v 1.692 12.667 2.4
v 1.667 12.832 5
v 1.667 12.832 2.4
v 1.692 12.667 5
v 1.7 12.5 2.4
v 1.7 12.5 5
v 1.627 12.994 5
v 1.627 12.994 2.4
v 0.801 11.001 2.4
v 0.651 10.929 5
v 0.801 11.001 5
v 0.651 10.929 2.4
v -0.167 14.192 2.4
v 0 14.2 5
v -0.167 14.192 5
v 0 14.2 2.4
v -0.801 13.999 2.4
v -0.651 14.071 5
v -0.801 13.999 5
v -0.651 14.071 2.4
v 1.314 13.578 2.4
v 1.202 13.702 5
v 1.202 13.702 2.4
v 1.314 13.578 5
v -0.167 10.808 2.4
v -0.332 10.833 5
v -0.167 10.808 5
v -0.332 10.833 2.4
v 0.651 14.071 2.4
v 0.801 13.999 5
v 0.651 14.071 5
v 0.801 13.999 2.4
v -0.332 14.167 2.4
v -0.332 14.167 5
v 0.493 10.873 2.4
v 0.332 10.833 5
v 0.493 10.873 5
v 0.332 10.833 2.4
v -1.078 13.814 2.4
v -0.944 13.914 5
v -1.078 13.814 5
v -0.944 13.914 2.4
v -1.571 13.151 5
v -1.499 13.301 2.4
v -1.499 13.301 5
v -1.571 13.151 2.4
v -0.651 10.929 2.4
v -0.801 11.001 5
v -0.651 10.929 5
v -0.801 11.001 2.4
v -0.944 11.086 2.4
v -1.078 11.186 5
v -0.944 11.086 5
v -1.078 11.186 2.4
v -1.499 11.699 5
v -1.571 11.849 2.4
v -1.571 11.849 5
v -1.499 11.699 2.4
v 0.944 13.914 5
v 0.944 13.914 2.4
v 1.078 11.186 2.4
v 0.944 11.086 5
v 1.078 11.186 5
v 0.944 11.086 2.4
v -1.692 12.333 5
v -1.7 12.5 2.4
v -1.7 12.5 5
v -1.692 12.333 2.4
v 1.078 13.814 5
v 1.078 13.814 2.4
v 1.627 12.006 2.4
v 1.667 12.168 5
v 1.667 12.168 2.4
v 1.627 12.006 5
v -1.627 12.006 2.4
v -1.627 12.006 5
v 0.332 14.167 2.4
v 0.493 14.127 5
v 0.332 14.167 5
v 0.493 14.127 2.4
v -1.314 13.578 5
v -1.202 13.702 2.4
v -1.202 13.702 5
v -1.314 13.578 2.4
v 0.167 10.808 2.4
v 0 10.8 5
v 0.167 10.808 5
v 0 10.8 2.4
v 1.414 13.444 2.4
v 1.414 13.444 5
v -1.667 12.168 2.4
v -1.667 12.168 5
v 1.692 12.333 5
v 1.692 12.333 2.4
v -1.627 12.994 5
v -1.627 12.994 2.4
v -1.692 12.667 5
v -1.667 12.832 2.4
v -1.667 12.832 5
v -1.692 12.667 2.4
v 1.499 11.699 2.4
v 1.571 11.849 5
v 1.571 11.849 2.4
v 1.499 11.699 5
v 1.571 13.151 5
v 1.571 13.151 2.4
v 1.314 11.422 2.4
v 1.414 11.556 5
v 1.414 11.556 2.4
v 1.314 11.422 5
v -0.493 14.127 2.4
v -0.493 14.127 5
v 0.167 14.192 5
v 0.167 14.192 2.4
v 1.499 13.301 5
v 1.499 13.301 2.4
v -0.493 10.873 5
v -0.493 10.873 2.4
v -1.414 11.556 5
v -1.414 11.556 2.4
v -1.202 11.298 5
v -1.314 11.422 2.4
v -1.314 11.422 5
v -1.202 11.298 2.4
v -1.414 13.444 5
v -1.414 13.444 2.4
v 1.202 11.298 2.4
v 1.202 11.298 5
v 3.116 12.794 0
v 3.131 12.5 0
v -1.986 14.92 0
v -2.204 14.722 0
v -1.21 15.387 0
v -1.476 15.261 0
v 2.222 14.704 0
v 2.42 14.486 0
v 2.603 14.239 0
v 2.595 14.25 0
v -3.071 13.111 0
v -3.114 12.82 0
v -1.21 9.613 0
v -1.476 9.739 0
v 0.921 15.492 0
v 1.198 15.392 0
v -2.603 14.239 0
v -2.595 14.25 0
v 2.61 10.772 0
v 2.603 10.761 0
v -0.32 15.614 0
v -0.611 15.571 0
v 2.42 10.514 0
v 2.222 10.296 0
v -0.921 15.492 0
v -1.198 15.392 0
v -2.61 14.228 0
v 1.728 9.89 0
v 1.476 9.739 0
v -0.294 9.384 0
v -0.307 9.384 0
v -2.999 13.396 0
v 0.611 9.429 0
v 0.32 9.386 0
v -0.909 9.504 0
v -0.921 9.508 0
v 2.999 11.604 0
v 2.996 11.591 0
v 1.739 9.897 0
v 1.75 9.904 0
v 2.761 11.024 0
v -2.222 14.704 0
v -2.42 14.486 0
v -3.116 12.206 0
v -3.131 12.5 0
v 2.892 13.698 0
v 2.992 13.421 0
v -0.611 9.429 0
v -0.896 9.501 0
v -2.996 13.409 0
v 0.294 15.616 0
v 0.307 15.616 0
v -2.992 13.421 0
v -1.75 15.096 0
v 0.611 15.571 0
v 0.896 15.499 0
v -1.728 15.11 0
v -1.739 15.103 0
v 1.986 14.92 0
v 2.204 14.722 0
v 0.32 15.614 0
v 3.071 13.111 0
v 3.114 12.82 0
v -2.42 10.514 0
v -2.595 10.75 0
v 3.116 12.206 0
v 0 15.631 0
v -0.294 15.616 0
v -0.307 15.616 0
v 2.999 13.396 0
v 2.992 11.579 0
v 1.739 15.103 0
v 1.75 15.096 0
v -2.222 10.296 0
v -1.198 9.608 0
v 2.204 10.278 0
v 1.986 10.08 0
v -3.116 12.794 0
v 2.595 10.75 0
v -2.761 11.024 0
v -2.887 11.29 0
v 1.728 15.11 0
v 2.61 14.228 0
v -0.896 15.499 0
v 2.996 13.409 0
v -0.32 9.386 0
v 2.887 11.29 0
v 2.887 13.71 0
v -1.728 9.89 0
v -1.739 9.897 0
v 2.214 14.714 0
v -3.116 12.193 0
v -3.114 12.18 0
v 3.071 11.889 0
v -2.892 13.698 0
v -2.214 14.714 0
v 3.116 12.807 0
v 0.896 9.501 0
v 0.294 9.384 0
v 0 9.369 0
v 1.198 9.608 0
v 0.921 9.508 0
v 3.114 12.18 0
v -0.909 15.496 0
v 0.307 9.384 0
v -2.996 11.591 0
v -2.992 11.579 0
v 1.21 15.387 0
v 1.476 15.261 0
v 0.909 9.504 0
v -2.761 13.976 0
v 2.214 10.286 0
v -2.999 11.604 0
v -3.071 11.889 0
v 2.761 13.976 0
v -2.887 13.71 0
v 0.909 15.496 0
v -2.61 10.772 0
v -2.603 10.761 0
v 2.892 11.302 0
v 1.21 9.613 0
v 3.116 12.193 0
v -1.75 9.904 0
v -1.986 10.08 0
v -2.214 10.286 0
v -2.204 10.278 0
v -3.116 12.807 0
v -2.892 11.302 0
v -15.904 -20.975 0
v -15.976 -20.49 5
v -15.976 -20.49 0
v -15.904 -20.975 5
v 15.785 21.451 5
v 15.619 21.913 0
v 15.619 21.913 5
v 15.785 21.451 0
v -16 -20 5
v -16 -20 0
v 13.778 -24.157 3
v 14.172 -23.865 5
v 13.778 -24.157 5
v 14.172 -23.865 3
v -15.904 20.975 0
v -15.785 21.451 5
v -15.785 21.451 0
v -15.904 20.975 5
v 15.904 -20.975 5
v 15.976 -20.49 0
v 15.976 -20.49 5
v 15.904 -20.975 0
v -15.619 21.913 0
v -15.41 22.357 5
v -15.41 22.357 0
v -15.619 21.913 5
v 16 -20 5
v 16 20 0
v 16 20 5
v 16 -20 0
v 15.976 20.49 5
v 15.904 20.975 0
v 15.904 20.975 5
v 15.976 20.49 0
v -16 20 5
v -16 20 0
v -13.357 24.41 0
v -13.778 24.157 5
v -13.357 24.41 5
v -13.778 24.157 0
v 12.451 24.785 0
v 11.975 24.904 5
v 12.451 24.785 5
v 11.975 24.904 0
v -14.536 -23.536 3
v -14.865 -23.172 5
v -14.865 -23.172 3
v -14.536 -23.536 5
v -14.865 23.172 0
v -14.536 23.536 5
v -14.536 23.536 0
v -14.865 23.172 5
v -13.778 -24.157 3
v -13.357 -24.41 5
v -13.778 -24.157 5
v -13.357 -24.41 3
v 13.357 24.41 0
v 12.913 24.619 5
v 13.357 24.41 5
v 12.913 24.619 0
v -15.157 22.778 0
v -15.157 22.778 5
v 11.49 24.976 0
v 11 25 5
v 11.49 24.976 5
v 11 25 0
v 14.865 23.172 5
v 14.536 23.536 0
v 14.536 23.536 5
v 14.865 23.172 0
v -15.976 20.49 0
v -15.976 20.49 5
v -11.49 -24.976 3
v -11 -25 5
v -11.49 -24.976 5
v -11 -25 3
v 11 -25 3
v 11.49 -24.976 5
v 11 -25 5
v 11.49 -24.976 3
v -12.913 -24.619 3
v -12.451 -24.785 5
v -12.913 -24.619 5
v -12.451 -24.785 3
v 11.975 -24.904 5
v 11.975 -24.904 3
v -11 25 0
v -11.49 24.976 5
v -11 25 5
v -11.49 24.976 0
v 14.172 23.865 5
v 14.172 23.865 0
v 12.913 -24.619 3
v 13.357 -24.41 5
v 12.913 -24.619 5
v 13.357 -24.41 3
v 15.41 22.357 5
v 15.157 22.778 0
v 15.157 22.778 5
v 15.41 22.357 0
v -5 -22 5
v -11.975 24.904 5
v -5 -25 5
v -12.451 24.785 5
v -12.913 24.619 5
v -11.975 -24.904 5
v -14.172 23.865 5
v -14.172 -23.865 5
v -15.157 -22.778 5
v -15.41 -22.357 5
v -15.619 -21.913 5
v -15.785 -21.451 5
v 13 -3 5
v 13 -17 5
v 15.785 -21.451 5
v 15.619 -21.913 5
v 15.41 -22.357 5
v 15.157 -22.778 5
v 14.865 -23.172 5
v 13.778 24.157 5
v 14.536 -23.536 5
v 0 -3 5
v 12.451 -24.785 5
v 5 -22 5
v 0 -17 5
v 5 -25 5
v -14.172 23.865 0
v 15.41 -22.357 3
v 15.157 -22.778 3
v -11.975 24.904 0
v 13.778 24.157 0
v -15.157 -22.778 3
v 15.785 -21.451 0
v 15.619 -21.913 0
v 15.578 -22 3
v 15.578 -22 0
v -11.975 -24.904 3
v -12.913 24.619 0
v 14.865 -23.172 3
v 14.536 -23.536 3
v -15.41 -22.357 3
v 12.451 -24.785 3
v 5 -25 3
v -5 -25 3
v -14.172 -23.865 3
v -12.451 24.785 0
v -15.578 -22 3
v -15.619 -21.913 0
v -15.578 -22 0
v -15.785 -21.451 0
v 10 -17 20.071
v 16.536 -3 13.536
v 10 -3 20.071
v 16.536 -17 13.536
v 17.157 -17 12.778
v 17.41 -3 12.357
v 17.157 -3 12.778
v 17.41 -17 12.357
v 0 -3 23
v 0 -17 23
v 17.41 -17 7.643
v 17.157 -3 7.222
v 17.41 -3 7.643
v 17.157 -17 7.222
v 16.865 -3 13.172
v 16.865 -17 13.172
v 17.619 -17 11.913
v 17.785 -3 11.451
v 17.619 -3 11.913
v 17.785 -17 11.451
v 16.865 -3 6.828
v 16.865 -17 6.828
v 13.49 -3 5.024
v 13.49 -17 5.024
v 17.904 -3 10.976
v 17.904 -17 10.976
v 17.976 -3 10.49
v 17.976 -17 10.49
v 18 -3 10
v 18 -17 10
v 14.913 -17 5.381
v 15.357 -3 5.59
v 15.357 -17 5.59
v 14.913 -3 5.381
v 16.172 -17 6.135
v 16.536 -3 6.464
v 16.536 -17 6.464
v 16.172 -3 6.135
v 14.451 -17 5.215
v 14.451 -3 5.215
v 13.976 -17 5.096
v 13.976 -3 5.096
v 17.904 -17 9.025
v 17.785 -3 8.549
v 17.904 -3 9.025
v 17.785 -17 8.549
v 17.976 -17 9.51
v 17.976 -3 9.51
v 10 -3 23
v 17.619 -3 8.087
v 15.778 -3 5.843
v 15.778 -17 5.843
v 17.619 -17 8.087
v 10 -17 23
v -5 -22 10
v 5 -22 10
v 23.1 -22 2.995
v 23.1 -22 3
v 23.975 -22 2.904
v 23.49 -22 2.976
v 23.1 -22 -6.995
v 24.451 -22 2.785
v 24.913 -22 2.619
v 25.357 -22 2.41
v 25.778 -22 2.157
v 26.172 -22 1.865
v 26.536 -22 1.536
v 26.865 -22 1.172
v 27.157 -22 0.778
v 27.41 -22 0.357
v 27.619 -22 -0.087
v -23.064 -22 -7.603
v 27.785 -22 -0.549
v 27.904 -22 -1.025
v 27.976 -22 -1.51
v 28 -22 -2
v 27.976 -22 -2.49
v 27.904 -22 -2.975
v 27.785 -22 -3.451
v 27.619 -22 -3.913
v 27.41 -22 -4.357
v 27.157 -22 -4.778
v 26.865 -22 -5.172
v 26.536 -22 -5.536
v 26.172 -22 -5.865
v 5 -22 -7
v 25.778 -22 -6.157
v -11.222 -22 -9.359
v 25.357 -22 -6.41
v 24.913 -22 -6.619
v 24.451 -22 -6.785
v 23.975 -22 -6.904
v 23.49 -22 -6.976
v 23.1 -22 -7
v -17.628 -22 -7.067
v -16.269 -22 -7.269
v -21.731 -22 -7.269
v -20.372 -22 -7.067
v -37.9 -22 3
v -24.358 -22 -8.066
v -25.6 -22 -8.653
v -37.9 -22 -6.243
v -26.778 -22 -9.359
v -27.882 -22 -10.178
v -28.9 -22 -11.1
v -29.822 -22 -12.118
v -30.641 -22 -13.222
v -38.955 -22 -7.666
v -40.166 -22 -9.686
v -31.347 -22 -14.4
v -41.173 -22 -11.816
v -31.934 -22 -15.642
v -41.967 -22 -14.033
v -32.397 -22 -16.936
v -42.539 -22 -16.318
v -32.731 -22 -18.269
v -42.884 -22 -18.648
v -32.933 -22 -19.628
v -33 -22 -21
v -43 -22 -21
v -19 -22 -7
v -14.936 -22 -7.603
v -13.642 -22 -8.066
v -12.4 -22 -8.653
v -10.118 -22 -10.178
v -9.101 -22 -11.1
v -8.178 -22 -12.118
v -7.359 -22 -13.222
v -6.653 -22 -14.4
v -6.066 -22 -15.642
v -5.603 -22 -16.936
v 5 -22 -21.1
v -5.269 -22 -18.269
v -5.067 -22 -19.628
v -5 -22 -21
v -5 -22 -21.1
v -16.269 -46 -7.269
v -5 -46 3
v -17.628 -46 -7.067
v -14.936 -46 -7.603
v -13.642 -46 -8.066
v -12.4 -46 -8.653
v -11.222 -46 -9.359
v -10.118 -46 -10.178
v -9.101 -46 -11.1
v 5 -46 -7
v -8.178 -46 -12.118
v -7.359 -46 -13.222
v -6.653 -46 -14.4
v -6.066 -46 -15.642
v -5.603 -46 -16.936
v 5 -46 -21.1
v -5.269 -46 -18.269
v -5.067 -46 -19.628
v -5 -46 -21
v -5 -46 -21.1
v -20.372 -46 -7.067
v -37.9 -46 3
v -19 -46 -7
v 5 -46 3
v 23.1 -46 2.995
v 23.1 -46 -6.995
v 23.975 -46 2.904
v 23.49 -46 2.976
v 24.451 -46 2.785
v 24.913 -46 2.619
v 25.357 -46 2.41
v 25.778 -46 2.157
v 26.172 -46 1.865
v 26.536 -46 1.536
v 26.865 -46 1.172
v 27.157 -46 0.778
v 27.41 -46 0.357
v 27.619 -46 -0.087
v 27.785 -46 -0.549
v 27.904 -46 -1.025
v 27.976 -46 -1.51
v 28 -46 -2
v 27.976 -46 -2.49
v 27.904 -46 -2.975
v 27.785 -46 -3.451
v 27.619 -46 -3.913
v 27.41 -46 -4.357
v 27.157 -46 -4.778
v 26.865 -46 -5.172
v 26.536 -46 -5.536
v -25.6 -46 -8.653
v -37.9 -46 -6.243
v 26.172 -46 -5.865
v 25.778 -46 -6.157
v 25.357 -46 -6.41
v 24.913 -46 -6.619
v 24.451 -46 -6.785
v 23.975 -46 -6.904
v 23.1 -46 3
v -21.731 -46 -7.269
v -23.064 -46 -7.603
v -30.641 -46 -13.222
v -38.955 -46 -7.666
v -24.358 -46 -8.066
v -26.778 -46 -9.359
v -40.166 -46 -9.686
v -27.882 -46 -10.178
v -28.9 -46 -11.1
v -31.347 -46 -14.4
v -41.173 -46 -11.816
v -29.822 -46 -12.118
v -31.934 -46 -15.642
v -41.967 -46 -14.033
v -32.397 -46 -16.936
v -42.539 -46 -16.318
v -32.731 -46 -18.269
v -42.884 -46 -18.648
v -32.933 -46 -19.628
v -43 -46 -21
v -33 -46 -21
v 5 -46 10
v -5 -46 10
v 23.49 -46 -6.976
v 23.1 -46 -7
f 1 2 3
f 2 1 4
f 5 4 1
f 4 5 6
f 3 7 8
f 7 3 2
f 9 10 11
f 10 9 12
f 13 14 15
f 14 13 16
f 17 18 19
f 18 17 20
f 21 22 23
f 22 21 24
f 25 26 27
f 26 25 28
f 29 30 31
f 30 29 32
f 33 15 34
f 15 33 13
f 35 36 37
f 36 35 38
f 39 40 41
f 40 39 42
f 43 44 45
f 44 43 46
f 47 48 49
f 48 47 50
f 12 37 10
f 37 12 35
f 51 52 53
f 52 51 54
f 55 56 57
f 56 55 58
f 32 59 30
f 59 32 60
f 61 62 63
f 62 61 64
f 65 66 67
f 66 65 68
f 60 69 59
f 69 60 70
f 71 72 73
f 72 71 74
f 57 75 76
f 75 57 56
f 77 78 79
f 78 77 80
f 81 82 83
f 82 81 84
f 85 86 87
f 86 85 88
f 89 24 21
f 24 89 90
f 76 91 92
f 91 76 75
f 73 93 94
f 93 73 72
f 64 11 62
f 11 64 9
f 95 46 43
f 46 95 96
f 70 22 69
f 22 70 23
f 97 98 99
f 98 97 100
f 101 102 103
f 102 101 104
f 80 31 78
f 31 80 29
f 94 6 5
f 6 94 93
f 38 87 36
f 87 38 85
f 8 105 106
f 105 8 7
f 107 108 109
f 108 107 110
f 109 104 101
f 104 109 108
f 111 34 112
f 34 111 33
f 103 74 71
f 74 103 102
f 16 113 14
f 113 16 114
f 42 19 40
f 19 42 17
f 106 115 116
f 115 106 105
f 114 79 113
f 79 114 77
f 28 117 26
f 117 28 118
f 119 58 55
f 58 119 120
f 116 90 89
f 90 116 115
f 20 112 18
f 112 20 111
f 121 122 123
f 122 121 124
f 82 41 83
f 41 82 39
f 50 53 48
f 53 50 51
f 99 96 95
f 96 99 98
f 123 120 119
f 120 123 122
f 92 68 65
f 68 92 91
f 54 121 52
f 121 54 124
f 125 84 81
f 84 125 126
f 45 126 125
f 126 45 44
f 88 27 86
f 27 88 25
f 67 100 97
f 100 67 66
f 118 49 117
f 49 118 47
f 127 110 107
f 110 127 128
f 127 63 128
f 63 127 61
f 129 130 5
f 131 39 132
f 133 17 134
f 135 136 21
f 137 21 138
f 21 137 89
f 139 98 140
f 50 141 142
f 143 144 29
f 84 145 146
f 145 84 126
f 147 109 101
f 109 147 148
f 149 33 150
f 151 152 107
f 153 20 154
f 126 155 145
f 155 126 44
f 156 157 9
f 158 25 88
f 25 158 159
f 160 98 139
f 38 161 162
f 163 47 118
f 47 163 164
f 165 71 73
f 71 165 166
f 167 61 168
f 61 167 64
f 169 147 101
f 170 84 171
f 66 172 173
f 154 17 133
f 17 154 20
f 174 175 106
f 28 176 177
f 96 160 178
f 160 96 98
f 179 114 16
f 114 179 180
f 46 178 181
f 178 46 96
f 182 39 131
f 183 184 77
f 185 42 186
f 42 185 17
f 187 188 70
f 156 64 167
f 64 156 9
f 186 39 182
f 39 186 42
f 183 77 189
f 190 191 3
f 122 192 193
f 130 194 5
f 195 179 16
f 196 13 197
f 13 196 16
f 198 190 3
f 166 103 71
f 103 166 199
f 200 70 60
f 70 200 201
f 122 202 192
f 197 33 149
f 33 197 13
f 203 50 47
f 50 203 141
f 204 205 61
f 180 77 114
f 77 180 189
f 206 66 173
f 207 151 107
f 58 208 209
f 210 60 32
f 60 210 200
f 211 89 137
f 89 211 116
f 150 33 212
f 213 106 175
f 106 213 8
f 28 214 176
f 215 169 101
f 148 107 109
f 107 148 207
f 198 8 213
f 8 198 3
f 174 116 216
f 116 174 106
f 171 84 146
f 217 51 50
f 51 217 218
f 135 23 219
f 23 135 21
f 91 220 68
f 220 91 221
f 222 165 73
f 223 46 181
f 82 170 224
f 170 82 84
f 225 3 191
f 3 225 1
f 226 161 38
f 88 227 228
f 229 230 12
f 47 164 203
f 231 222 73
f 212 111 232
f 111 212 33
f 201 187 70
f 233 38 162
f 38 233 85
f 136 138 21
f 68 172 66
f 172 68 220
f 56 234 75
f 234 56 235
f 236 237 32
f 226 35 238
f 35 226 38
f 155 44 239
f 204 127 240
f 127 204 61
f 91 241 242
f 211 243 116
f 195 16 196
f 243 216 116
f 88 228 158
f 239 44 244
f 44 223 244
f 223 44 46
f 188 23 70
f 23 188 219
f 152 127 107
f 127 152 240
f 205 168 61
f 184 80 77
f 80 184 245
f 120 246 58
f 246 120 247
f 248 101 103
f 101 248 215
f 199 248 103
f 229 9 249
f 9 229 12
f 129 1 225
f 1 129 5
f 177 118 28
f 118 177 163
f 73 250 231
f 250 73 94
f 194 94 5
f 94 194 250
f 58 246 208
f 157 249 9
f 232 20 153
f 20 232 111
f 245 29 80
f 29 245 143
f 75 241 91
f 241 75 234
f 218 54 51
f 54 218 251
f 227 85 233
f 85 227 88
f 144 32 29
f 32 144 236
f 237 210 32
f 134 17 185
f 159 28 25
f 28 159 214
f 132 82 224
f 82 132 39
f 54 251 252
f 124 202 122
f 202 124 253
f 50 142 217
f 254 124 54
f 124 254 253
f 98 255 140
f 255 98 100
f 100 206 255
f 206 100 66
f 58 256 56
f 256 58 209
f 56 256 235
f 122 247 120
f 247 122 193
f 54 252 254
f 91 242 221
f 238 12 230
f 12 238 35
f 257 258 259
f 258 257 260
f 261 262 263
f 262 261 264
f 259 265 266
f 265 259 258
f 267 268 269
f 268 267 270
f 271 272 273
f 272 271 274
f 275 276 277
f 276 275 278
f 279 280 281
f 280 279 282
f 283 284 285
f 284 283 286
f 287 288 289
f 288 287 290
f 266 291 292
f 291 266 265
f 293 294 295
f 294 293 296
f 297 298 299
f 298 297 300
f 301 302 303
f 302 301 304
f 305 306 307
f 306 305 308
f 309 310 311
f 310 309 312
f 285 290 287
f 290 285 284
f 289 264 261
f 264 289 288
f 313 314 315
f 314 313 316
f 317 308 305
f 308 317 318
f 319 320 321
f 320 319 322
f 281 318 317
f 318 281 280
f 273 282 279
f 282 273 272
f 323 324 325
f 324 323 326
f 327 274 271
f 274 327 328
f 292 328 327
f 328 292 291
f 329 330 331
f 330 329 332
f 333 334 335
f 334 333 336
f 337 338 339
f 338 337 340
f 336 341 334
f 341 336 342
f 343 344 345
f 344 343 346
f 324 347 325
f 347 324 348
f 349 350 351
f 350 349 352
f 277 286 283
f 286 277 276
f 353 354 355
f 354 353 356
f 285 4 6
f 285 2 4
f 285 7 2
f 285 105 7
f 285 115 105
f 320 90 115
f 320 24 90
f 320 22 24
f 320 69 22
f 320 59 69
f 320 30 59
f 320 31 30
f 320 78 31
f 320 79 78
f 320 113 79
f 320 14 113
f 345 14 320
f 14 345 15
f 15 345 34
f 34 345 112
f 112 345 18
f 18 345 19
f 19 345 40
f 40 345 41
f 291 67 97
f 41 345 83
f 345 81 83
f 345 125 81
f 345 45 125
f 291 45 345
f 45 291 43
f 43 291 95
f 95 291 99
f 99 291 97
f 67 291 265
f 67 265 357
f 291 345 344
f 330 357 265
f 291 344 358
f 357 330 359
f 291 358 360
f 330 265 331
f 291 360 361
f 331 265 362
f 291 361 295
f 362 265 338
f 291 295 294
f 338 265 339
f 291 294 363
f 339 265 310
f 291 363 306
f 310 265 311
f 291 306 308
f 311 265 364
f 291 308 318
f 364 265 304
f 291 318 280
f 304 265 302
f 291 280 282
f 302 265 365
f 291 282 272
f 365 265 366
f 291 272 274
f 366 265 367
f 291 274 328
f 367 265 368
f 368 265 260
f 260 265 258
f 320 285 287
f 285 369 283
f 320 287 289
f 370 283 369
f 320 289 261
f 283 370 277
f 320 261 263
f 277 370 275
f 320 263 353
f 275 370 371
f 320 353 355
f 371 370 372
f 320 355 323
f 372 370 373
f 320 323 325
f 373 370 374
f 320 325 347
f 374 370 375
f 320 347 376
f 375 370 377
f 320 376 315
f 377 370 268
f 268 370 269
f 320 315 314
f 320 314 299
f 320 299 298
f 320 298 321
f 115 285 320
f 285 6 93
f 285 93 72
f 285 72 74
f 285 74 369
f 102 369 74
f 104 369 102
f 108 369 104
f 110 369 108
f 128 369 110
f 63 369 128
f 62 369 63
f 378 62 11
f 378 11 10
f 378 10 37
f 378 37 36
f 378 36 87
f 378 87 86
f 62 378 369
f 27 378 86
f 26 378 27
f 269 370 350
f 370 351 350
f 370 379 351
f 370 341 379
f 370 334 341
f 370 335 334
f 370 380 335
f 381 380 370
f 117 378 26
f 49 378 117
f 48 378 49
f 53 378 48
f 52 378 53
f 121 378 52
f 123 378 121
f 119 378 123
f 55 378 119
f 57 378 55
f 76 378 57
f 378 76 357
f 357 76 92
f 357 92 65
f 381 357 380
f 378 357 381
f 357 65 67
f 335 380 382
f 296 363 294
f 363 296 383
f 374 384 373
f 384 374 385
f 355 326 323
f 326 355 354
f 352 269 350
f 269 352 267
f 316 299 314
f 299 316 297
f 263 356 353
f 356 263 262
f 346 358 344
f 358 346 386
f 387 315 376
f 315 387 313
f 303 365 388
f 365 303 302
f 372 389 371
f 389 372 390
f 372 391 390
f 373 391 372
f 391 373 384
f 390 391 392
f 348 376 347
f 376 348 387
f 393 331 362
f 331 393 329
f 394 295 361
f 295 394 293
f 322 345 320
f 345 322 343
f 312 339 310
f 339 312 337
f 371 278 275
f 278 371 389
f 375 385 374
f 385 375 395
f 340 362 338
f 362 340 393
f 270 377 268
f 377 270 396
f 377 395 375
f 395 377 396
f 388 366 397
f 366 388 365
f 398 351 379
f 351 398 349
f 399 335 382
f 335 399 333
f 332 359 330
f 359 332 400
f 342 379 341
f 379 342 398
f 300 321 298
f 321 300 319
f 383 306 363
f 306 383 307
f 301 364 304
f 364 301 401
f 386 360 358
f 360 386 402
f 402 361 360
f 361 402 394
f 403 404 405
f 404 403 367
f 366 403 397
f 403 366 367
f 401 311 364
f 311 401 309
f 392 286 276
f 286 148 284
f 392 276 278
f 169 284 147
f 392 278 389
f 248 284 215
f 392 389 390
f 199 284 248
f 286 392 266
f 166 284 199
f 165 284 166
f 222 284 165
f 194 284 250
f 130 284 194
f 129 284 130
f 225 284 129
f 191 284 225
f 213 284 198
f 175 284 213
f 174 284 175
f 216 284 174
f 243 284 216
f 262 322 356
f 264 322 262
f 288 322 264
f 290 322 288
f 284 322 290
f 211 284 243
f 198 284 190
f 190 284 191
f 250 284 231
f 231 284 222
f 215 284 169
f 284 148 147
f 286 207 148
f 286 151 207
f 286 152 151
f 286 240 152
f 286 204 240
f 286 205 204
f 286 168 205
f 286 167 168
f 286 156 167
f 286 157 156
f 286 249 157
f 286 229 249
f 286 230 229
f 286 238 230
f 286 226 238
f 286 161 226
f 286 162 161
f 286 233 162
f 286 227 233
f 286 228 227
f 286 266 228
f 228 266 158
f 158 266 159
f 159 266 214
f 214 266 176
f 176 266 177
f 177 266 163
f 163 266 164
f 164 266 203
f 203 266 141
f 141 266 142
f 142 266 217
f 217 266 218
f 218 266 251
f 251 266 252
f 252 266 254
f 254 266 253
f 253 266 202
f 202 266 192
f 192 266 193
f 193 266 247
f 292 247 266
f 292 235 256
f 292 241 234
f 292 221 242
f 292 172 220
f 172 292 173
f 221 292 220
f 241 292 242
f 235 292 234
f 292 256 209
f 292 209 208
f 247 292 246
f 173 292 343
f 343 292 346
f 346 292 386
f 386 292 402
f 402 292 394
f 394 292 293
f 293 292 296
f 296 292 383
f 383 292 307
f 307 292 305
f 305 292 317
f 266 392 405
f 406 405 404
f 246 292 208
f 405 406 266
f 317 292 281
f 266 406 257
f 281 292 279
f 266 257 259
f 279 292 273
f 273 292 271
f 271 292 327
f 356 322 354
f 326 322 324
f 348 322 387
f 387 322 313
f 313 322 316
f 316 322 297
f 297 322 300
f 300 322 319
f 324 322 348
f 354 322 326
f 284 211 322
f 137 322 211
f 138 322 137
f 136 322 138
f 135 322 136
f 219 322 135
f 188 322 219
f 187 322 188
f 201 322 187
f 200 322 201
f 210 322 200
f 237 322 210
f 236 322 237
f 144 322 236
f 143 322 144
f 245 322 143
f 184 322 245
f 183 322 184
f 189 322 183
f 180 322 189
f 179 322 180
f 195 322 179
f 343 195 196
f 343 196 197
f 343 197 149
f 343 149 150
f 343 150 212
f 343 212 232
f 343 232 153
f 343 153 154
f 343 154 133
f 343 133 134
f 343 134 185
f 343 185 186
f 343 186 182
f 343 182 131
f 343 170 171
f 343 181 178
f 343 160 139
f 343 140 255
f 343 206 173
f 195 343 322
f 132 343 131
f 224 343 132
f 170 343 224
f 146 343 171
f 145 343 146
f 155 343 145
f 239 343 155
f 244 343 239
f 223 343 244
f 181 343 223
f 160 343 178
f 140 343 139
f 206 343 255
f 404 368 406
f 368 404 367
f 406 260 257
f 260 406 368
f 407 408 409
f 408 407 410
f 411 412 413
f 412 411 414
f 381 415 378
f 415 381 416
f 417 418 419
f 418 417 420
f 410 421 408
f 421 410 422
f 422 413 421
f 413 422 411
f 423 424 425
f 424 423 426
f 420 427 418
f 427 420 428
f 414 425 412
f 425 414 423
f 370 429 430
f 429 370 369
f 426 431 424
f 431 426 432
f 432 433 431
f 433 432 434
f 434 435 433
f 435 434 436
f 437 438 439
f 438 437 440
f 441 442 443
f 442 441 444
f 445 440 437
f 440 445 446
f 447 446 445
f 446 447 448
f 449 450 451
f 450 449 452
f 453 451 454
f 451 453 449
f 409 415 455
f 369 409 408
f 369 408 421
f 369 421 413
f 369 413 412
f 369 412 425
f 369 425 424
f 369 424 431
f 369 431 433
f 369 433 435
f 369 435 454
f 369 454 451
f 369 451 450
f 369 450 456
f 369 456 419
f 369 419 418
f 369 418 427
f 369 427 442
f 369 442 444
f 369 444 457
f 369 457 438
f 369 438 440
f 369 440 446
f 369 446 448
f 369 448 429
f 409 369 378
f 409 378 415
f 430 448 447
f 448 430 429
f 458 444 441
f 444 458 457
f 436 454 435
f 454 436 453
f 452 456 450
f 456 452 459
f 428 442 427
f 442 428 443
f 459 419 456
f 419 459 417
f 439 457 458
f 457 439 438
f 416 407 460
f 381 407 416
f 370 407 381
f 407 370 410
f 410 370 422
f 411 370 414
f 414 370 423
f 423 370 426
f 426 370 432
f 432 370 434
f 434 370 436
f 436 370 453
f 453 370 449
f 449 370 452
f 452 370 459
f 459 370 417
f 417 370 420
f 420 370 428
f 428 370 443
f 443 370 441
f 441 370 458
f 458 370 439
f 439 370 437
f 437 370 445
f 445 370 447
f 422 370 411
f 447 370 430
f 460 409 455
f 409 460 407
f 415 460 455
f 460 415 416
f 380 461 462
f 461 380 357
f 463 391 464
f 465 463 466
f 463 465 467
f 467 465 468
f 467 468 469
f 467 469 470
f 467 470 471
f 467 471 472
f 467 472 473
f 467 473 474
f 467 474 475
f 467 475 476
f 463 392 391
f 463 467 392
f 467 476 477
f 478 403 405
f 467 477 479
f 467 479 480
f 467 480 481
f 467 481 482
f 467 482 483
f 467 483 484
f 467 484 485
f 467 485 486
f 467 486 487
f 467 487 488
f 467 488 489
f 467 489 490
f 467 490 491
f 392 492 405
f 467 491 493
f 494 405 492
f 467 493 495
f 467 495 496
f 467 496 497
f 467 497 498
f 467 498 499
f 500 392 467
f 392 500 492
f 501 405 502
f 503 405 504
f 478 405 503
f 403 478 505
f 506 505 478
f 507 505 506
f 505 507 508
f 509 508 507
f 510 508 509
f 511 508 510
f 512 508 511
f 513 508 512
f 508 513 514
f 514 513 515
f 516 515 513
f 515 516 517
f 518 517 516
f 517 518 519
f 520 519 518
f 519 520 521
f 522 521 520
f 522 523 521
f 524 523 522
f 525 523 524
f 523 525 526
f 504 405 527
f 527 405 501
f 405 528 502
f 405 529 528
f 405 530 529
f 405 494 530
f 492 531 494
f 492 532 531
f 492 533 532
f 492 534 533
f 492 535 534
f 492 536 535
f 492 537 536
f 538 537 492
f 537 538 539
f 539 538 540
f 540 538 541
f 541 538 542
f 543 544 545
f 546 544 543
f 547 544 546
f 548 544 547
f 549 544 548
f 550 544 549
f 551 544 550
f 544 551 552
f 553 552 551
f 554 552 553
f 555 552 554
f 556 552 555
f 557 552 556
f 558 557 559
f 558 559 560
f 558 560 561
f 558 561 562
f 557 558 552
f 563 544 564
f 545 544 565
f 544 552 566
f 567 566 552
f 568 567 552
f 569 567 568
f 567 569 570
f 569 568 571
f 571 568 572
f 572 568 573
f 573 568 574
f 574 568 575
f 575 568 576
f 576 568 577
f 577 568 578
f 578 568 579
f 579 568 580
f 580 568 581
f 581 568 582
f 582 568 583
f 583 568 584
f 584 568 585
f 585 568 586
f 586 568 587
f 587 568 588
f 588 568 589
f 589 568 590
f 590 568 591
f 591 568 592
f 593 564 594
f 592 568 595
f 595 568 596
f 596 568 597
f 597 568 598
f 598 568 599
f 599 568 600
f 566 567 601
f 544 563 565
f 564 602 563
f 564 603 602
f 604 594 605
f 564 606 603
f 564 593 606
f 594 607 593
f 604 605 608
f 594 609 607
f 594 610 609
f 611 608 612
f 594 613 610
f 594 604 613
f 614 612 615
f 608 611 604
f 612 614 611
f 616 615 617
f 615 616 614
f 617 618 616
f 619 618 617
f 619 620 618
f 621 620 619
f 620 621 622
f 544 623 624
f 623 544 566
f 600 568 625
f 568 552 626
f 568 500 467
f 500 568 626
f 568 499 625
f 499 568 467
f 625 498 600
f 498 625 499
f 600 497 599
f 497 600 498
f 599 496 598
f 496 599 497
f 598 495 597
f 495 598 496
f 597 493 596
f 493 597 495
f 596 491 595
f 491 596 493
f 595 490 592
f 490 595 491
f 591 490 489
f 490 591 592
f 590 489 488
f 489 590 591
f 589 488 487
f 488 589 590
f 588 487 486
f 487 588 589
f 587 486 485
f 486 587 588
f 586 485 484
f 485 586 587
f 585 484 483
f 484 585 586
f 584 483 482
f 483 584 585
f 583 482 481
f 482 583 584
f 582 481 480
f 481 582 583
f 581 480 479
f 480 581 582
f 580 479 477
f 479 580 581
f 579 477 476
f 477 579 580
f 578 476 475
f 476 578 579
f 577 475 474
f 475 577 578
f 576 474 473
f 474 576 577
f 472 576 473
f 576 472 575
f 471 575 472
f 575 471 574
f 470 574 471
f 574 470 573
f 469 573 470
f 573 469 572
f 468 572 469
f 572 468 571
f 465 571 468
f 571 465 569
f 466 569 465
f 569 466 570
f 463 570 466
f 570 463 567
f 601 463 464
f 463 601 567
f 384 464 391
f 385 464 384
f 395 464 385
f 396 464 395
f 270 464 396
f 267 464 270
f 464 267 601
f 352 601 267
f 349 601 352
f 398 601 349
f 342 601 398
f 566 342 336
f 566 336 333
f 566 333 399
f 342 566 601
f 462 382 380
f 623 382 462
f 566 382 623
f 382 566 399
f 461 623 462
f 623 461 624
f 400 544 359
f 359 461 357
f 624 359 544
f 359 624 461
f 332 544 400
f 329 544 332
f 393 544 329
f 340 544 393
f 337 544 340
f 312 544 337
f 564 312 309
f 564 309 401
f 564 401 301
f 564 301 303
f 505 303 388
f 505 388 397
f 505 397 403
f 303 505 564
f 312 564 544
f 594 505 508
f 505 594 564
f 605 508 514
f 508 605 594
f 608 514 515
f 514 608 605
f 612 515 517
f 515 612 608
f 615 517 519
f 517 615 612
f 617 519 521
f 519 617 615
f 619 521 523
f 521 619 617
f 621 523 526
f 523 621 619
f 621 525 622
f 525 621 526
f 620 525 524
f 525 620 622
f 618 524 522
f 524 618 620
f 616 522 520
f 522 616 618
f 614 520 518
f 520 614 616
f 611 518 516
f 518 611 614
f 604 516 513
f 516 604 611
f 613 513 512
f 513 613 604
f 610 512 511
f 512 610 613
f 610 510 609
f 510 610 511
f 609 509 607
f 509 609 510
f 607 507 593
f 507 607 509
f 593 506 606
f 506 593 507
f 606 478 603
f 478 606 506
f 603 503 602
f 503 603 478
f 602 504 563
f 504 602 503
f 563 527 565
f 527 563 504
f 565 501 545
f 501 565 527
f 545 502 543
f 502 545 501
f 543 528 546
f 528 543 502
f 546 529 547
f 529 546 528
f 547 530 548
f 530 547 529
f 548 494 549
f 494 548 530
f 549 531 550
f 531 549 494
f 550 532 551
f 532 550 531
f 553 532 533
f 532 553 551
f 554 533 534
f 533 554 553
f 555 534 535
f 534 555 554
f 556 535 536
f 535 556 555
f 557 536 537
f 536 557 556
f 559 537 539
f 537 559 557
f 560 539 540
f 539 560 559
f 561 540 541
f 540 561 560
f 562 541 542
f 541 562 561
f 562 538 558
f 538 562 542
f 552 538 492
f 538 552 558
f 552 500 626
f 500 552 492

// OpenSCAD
// Towel Hook - Wall mounted with M3 flat head screw
// Designed for 3D printing - sturdy construction for heavy towels
// Print orientation: lay flat with wall plate on print bed

$fn = 64;

// Main parameters
wall_plate_width = 32;
wall_plate_height = 50;
wall_plate_thickness = 5;

// Screw hole parameters (M3 flat head)
screw_hole_diameter = 3.4;  // Clearance for M3 screw
screw_head_diameter = 6.5;  // M3 flat head countersink diameter
screw_head_depth = 2.5;     // Countersink depth

// Hook parameters
hook_thickness = 10;        // Thick for strength (good layer adhesion)
hook_width = 24;            // Width of the hook arm
hook_length = 45;           // How far hook extends from wall
hook_curve_radius = 14;     // Inner radius of the hook curve
hook_tip_length = 28;       // Length of upward tip to prevent towel sliding off

// Reinforcement gusset
gusset_length = 18;
gusset_height = 18;

// Position of hook on plate (lower portion)
hook_y_offset = -10;

module rounded_rect(w, h, r) {
    hull() {
        for (x = [-1, 1]) {
            for (y = [-1, 1]) {
                translate([x * (w/2 - r), y * (h/2 - r)])
                    circle(r = r);
            }
        }
    }
}

module wall_plate() {
    difference() {
        // Rounded rectangle plate
        linear_extrude(height = wall_plate_thickness)
            rounded_rect(wall_plate_width, wall_plate_height, 5);
        
        // Countersunk screw hole - positioned in upper portion
        translate([0, wall_plate_height/4, -0.1]) {
            // Through hole
            cylinder(d = screw_hole_diameter, h = wall_plate_thickness + 0.2);
            // Countersink from back for flat head screw (cone on mounting surface)
            translate([0, 0, -0.1])
                cylinder(d1 = screw_head_diameter, d2 = screw_hole_diameter, h = screw_head_depth + 0.1);
        }
    }
}

module hook_2d_profile() {
    // 2D profile that will be extruded
    outer_r = hook_curve_radius + hook_thickness;
    inner_r = hook_curve_radius;
    
    union() {
        // Horizontal arm
        translate([0, -hook_thickness/2])
            square([hook_length - hook_curve_radius + 0.1, hook_thickness]);
        
        // Curved section (180 degrees, going down)
        translate([hook_length - hook_curve_radius, -hook_curve_radius - hook_thickness/2])
            difference() {
                circle(r = outer_r);
                circle(r = inner_r);
                // Keep only left half (the curve going down and back)
                translate([0, -outer_r - 1])
                    square([outer_r + 1, 2 * outer_r + 2]);
            }
        
        // Upward tip
        translate([hook_length - 2*hook_curve_radius - hook_thickness, -2*hook_curve_radius - hook_thickness + 0.1])
            square([hook_thickness, hook_tip_length + 2*hook_curve_radius + hook_thickness - hook_thickness/2]);
        
        // Rounded tip top
        translate([hook_length - 2*hook_curve_radius - hook_thickness/2, hook_tip_length - hook_thickness/2])
            circle(d = hook_thickness);
    }
}

module hook_body() {
    // Extrude the 2D hook profile
    translate([0, -hook_width/2, 0])
        rotate([90, 0, 0])
            rotate([0, 0, -90])
                linear_extrude(height = hook_width)
                    hook_2d_profile();
}

module gusset_2d() {
    // 2D triangular gusset profile with rounded corners
    hull() {
        translate([hook_thickness/2, hook_thickness/2])
            circle(d = hook_thickness);
        translate([gusset_length - hook_thickness/2, hook_thickness/2])
            circle(d = hook_thickness);
        translate([hook_thickness/2, gusset_height - hook_thickness/2])
            circle(d = hook_thickness);
    }
}

module gussets() {
    // Two side gussets
    gusset_offset = hook_width/2 - hook_thickness/2;
    
    translate([0, gusset_offset, -hook_thickness/2])
        rotate([90, 0, 0])
            linear_extrude(height = hook_thickness)
                gusset_2d();
    
    translate([0, -gusset_offset + hook_thickness, -hook_thickness/2])
        rotate([90, 0, 0])
            linear_extrude(height = hook_thickness)
                gusset_2d();
    
    // Connecting bar between gussets at the base
    translate([0, -hook_width/2 + hook_thickness/2, -hook_thickness/2])
        cube([hook_thickness, hook_width - hook_thickness, gusset_height]);
}

module towel_hook() {
    union() {
        // Wall mounting plate
        wall_plate();
        
        // Hook body positioned on lower part of plate
        translate([0, hook_y_offset, wall_plate_thickness + hook_thickness/2])
            hook_body();
        
        // Reinforcement gussets
        translate([0, hook_y_offset, wall_plate_thickness + hook_thickness/2])
            gussets();
    }
}

// Render the hook
towel_hook();
